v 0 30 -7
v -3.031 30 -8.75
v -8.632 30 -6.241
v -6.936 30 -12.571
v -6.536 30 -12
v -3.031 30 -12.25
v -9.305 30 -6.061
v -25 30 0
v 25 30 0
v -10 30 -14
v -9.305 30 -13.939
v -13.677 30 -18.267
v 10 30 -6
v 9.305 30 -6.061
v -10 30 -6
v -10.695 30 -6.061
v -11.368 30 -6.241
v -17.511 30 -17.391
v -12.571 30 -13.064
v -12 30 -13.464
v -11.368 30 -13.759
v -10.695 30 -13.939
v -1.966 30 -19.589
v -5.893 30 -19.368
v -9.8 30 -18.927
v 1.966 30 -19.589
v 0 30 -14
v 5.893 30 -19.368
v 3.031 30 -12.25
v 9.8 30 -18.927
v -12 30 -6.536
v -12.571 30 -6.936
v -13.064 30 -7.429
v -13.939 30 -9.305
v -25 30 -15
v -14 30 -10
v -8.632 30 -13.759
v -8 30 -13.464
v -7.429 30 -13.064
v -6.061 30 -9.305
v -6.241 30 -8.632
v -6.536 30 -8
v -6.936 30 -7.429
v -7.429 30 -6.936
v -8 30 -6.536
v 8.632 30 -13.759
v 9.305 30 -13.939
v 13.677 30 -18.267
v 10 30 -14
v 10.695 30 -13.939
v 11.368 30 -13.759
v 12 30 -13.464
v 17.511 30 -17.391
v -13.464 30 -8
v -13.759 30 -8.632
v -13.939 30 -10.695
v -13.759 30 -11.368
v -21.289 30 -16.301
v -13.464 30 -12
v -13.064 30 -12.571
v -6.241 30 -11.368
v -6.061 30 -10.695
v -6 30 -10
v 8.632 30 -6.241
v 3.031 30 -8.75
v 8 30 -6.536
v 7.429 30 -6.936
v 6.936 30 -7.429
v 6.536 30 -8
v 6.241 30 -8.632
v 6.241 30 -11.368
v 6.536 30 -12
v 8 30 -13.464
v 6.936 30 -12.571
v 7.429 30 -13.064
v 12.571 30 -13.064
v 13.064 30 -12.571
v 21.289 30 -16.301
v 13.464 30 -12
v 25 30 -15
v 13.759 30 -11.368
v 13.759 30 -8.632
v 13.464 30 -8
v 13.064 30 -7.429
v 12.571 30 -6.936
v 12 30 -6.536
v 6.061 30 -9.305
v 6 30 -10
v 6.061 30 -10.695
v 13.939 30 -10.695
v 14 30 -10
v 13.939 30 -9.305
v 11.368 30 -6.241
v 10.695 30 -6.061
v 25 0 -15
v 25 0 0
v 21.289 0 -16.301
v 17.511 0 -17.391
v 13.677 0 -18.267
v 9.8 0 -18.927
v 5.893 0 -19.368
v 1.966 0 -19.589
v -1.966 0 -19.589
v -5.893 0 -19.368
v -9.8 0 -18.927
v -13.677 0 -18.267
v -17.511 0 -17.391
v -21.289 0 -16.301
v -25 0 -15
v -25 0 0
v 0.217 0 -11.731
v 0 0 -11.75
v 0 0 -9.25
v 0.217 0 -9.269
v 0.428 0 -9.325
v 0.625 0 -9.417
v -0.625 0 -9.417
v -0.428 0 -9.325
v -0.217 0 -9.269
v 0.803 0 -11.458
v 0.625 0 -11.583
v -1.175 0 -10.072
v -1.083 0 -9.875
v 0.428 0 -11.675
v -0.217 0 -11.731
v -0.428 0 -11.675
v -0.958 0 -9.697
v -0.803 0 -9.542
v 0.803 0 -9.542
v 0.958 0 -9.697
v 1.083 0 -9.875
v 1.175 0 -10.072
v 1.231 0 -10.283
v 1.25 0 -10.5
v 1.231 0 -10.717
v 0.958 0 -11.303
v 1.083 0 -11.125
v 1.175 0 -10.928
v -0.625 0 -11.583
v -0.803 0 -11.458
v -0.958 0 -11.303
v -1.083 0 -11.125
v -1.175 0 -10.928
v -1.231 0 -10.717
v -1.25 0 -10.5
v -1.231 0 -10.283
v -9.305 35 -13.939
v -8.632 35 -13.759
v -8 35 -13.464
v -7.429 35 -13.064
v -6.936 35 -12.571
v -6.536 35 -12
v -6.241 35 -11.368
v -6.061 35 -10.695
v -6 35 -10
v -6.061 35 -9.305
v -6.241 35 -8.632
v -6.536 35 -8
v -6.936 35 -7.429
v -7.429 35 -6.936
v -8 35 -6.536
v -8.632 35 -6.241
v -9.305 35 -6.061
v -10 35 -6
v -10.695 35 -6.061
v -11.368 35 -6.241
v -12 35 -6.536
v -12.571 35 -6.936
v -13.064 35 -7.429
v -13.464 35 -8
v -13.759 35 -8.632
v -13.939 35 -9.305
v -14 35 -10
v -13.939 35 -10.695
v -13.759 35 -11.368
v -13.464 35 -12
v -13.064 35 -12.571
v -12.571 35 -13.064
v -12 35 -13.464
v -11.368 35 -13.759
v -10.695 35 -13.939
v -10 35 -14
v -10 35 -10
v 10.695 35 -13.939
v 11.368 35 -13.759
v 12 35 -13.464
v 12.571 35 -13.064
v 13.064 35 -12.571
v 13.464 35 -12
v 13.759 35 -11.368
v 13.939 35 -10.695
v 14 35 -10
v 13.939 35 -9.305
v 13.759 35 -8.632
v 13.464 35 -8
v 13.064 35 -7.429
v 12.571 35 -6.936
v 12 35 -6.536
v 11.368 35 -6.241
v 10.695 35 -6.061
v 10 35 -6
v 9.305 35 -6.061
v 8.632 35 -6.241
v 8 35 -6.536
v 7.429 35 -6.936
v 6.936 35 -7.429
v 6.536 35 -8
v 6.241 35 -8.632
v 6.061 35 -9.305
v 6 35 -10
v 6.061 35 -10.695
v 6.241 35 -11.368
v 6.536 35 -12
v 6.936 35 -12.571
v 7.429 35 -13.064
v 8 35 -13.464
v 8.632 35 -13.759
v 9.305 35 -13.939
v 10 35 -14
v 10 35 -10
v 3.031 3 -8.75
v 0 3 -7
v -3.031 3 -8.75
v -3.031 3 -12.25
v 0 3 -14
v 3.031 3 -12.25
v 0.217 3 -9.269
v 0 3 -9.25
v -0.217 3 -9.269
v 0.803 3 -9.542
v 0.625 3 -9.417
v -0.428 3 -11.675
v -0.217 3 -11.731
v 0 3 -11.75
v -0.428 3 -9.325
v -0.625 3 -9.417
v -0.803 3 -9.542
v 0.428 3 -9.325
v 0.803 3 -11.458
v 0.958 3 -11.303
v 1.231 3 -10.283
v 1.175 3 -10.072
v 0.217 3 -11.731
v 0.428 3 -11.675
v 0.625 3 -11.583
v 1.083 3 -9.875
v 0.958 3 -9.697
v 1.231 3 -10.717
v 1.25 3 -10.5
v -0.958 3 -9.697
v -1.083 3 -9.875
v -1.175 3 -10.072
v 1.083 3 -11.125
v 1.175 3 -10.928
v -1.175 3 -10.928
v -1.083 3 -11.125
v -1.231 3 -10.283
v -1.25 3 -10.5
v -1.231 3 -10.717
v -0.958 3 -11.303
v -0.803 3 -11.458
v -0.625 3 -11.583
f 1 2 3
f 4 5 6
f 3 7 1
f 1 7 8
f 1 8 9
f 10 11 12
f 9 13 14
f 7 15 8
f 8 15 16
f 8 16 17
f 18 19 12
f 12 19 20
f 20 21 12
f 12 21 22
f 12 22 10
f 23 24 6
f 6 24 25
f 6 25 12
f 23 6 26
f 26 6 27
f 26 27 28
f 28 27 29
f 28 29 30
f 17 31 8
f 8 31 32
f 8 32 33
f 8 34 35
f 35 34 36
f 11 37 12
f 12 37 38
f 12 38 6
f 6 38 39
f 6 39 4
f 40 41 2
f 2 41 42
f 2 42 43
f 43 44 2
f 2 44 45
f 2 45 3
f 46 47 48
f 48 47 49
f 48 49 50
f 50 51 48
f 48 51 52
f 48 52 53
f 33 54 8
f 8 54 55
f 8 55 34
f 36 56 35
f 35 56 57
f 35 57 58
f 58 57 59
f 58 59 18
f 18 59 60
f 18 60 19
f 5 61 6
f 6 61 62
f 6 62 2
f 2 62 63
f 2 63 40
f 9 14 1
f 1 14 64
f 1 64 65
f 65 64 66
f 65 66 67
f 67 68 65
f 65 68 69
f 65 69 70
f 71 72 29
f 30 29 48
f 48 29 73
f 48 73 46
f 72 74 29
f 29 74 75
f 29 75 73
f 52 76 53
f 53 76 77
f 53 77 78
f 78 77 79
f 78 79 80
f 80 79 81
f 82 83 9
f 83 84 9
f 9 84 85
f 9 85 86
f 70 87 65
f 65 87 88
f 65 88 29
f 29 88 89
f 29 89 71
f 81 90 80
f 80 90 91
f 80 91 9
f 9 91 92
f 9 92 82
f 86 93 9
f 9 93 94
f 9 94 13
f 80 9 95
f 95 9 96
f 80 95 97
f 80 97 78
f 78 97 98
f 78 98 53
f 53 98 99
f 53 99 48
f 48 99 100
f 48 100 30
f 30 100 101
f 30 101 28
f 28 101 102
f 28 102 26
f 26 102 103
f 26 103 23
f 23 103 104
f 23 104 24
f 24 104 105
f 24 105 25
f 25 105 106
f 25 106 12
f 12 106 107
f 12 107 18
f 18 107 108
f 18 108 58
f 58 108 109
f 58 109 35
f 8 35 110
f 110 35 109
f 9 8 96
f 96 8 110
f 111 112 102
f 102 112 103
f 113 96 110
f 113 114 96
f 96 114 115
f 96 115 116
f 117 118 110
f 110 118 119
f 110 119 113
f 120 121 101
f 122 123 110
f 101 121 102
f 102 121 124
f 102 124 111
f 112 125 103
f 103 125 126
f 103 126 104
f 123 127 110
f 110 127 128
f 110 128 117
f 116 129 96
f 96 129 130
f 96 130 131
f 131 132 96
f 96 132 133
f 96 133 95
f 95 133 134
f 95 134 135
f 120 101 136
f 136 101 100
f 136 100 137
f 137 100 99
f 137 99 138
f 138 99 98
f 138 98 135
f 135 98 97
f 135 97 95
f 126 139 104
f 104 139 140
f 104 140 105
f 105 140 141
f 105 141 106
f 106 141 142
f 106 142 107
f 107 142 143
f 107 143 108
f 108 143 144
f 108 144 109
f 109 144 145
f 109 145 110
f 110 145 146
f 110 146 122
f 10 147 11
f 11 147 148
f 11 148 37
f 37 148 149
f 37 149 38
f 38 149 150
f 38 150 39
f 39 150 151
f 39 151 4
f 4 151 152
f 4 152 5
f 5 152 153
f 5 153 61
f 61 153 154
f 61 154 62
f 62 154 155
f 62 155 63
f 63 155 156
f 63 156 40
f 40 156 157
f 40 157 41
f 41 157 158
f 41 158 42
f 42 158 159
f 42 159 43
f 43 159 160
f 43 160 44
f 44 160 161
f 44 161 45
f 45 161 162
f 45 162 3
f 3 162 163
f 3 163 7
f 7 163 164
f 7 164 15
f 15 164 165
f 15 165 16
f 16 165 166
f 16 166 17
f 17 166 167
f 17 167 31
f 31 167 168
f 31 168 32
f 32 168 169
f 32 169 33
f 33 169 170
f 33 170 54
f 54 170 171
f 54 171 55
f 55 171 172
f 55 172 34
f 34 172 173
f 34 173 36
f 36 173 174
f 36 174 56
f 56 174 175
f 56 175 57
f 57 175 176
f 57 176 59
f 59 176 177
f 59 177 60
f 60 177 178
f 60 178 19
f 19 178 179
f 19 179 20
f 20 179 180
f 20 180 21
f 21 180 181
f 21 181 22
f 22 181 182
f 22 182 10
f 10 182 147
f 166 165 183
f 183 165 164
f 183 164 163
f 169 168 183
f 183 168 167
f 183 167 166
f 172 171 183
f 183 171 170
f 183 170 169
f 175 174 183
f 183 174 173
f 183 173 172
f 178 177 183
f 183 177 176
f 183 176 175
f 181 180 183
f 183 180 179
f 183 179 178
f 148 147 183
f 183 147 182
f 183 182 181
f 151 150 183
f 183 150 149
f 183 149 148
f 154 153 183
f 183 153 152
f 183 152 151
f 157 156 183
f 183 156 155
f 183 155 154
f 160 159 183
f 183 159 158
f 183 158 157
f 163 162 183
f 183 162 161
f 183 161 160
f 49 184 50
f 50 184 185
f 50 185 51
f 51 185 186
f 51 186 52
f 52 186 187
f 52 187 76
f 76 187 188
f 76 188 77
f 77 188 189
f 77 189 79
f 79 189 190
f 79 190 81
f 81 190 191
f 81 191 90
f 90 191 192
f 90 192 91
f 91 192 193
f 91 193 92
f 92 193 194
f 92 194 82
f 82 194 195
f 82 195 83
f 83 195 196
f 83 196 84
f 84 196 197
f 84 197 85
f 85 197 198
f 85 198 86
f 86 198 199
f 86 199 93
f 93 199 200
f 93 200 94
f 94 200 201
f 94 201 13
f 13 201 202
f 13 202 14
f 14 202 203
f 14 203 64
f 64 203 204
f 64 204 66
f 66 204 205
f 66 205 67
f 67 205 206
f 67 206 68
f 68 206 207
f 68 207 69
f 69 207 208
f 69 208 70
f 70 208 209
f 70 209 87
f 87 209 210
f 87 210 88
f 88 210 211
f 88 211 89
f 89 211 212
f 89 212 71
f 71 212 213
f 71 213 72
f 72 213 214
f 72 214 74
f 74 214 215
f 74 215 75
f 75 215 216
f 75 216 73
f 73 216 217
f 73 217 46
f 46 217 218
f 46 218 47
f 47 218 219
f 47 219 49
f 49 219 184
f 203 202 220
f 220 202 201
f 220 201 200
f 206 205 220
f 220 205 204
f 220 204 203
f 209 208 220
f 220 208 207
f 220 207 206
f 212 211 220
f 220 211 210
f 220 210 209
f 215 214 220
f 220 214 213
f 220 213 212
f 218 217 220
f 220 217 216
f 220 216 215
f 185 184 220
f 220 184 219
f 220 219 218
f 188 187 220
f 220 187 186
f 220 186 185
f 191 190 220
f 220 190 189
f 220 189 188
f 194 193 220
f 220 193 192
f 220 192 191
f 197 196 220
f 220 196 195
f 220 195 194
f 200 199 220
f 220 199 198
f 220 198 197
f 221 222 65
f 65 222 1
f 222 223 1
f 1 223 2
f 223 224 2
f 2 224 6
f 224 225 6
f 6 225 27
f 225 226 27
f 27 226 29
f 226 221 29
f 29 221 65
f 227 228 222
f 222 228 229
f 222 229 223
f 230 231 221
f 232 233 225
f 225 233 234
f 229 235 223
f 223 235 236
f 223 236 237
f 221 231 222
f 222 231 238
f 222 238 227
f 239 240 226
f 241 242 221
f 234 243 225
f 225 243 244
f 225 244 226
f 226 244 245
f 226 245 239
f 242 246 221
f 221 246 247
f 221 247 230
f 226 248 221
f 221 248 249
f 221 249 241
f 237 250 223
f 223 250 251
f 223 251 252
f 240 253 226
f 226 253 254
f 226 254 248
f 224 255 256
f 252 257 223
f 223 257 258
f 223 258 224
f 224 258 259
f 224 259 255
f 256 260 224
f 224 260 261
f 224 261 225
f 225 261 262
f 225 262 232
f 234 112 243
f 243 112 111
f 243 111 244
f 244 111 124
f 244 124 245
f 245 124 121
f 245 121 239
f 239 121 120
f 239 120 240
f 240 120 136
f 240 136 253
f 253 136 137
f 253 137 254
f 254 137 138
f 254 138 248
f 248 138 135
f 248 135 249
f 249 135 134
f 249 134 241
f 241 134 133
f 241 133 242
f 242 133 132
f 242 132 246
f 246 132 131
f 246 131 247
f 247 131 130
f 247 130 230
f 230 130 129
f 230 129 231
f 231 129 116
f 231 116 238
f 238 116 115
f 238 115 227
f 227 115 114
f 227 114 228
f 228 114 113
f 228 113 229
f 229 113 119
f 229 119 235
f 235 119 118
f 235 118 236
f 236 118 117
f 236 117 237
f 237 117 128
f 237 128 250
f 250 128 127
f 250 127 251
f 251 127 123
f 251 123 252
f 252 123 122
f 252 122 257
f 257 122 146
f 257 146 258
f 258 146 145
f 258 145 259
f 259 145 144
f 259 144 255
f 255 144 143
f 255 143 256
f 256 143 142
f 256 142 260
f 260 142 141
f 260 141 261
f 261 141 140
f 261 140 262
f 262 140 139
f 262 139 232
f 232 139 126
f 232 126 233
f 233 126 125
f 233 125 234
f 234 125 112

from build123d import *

# Parameters (mm, degrees)
BOSS_EXTRUDE1_DEPTH = 30
SKETCH2_R           = 4
BOSS_EXTRUDE2_DEPTH = 5
CUT_EXTRUDE1_DEPTH  = 27
SKETCH4_R           = 1.25
CUT_EXTRUDE2_DEPTH  = 10


with BuildPart() as part:
    # Sketch1 → Boss-Extrude1 (new body)
    with BuildSketch(Plane(origin=(0, 0, 0), x_dir=(1, 0, 0), z_dir=(0, 1, 0))):
        with BuildLine():
            Line((-25, 15), (-25, 0))
            Line((-25, 0), (25, 0))
            Line((25, 0), (25, 15))
            ThreePointArc((25, 15), (0, 19.616515847), (-25, 15))
        make_face()
    extrude(amount=BOSS_EXTRUDE1_DEPTH)

    # Sketch2 → Boss-Extrude2 (add)
    with BuildSketch(Plane(origin=(0, 30, 0), x_dir=(1, 0, 0), z_dir=(0, 1, 0))):
        with Locations(Location((-10, 10, 0), (0, 0, 270))):
            Circle(SKETCH2_R)
        with Locations(Location((10, 10, 0), (0, 0, 270))):
            Circle(SKETCH2_R)
    extrude(amount=BOSS_EXTRUDE2_DEPTH)

    # Sketch3 → Cut-Extrude1 (cut)
    with BuildSketch(Plane.XZ.offset(-30)):
        Polygon((0, -7), (-3.031088913, -8.75), (-3.031088913, -12.25), (0, -14), (3.031088913, -12.25), (3.031088913, -8.75), align=None)
    extrude(amount=CUT_EXTRUDE1_DEPTH, mode=Mode.SUBTRACT)

    # Sketch4 → Cut-Extrude2 (cut)
    with BuildSketch(Plane.XZ):
        with Locations(Location((0, -10.5, 0), (0, 0, 270))):
            Circle(SKETCH4_R)
    extrude(amount=-CUT_EXTRUDE2_DEPTH, mode=Mode.SUBTRACT)


solid = part.part
